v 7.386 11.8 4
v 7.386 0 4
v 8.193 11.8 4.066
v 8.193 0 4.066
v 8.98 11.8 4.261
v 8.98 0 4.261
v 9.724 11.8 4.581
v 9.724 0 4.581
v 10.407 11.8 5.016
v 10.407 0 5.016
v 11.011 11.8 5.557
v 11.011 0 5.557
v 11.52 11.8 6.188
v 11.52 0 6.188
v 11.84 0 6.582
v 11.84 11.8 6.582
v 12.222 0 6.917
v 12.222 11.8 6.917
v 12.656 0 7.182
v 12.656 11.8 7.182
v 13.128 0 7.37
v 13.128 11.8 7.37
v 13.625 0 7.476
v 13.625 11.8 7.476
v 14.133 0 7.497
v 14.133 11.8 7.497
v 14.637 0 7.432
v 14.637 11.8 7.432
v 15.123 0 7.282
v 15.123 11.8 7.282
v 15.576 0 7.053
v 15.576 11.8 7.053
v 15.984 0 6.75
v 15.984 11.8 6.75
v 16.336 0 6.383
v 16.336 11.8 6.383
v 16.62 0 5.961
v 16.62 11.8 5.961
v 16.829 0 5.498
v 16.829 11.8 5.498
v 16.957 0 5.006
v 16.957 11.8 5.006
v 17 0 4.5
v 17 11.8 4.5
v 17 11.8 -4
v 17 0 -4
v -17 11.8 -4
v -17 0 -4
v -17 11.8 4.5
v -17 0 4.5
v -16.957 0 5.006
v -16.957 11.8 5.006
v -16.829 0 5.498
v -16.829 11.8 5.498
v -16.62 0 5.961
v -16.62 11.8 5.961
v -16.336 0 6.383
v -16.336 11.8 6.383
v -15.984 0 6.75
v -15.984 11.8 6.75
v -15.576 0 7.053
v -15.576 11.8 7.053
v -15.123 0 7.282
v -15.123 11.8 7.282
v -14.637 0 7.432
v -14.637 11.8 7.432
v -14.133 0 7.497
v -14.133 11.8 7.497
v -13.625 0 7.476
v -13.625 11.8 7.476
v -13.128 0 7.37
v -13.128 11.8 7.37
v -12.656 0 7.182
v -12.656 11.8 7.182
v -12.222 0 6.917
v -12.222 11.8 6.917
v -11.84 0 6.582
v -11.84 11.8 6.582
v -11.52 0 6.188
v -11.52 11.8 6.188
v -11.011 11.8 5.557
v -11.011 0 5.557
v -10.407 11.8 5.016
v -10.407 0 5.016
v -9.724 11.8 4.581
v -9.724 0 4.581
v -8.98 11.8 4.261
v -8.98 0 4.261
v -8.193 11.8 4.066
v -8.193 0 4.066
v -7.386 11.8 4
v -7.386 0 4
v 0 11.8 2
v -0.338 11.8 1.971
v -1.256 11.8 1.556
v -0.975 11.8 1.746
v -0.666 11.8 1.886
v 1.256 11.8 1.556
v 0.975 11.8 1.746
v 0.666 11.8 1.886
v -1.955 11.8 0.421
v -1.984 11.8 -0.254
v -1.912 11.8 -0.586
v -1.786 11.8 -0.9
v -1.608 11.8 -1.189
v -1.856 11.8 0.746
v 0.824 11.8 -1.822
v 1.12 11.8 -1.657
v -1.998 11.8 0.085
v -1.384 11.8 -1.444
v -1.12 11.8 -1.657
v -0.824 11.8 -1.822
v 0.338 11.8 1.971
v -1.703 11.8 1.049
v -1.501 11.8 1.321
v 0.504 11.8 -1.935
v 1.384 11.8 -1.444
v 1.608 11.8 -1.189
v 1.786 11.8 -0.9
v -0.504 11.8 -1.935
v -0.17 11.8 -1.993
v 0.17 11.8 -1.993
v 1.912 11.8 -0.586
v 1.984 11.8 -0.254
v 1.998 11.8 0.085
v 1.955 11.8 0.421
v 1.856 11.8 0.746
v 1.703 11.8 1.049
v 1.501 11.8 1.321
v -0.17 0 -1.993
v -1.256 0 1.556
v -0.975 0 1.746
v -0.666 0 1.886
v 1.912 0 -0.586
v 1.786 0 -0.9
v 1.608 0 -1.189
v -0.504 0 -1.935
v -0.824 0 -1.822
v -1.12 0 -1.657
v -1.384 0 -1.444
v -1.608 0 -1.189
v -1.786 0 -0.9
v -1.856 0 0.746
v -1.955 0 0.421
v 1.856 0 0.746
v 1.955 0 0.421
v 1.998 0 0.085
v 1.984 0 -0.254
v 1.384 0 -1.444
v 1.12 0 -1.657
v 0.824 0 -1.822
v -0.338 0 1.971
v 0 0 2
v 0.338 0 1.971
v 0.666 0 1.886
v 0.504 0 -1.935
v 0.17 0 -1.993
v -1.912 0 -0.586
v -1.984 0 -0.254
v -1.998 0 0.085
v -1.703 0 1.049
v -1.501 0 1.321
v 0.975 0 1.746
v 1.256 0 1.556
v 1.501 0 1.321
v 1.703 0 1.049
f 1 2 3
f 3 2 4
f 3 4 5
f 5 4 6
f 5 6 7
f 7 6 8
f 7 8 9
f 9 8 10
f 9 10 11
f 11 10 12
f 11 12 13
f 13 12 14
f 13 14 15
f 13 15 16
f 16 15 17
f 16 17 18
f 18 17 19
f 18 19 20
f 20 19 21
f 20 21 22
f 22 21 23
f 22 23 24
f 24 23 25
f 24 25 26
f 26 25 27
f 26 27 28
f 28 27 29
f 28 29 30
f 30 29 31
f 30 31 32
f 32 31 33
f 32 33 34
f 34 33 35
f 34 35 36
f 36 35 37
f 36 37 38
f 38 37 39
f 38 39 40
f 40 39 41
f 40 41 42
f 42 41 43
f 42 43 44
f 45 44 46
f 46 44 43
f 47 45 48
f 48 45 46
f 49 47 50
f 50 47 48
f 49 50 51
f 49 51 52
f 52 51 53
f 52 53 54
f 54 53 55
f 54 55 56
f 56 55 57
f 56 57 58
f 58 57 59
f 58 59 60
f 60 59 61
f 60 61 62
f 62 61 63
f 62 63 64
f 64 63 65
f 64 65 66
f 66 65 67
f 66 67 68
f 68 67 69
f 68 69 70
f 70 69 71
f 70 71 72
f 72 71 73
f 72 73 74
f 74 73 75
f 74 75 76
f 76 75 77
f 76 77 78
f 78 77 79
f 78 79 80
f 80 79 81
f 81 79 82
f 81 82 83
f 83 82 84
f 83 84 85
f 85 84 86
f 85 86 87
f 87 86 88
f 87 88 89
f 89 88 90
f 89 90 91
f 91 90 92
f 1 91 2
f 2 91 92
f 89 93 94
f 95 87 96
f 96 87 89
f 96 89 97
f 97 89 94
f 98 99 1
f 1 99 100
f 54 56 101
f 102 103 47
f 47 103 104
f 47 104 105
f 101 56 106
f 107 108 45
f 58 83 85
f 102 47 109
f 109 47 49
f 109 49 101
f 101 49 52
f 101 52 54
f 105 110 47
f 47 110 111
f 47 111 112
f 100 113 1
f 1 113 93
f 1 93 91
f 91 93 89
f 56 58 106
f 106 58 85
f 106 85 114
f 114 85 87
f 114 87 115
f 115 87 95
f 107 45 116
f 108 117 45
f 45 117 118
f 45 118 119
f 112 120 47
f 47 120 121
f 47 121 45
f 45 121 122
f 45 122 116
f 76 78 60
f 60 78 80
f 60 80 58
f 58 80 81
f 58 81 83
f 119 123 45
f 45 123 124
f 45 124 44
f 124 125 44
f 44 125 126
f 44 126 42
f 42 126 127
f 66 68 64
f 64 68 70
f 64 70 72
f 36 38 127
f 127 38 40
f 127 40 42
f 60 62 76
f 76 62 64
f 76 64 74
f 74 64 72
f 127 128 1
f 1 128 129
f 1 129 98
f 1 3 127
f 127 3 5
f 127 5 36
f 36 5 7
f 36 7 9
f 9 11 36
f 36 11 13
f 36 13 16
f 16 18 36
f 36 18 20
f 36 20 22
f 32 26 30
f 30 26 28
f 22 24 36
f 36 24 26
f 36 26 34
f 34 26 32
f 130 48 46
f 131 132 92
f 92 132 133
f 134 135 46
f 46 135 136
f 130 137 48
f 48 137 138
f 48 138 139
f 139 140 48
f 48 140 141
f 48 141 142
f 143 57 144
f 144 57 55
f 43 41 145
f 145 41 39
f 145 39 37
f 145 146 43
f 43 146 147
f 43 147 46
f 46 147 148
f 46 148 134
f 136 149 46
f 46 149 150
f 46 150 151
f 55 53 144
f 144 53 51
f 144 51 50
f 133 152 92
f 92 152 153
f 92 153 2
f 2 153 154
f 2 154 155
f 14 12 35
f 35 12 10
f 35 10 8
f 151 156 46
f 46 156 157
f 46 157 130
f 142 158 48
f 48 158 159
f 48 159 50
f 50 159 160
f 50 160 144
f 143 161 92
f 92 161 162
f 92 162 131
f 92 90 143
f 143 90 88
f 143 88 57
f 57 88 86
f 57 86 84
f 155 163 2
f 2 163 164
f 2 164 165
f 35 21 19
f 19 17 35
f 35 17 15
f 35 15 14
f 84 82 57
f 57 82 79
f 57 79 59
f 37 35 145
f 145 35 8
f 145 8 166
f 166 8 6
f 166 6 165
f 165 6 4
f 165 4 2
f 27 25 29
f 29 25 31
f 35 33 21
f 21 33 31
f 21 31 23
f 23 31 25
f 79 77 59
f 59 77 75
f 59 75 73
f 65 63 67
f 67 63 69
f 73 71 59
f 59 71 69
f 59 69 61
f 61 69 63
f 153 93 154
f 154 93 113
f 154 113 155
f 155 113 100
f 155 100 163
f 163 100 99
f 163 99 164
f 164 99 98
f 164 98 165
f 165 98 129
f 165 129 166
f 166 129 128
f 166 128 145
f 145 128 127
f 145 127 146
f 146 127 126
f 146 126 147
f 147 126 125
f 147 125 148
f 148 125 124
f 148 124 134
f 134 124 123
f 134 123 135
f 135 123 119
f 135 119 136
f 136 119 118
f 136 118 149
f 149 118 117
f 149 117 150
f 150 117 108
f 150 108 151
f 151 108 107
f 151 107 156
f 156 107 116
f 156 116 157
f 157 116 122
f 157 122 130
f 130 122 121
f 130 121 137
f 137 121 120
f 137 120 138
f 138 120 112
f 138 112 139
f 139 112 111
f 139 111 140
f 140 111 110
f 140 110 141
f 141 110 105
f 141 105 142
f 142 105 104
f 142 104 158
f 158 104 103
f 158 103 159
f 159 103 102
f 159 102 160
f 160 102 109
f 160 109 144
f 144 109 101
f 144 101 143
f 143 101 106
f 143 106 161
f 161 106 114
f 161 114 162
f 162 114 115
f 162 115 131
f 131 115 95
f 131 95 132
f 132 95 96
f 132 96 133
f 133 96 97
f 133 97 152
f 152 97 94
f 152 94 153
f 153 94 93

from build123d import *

# Parameters (mm, degrees)
BOSS_EXTRUDE1_DEPTH = 11.8
SKETCH2_R           = 2
CUT_EXTRUDE1_DEPTH  = 12.8


with BuildPart() as part:
    # Sketch1 → Boss-Extrude1 (new body)
    with BuildSketch(Plane(origin=(0, 0, 0), x_dir=(1, 0, 0), z_dir=(0, 1, 0))):
        with BuildLine():
            Line((7.385621722, -4), (-7.385621722, -4))
            ThreePointArc((-7.385621722, -4), (-9.724157589, -4.580582618), (-11.519608146, -6.1875))
            ThreePointArc((-11.519608146, -6.1875), (-14.882843258, -7.367156742), (-17, -4.5))
            Line((-17, -4.5), (-17, 4))
            Line((-17, 4), (17, 4))
            Line((17, 4), (17, -4.5))
            ThreePointArc((17, -4.5), (14.882843258, -7.367156742), (11.519608146, -6.1875))
            ThreePointArc((11.519608146, -6.1875), (9.724157589, -4.580582618), (7.385621722, -4))
        make_face()
    extrude(amount=BOSS_EXTRUDE1_DEPTH)

    # Sketch2 → Cut-Extrude1 (cut, through all)
    with BuildSketch(Plane(origin=(0, 11.8, 0), x_dir=(1, 0, 0), z_dir=(0, 1, 0))):
        Circle(SKETCH2_R)
    extrude(amount=-CUT_EXTRUDE1_DEPTH, mode=Mode.SUBTRACT)


solid = part.part
